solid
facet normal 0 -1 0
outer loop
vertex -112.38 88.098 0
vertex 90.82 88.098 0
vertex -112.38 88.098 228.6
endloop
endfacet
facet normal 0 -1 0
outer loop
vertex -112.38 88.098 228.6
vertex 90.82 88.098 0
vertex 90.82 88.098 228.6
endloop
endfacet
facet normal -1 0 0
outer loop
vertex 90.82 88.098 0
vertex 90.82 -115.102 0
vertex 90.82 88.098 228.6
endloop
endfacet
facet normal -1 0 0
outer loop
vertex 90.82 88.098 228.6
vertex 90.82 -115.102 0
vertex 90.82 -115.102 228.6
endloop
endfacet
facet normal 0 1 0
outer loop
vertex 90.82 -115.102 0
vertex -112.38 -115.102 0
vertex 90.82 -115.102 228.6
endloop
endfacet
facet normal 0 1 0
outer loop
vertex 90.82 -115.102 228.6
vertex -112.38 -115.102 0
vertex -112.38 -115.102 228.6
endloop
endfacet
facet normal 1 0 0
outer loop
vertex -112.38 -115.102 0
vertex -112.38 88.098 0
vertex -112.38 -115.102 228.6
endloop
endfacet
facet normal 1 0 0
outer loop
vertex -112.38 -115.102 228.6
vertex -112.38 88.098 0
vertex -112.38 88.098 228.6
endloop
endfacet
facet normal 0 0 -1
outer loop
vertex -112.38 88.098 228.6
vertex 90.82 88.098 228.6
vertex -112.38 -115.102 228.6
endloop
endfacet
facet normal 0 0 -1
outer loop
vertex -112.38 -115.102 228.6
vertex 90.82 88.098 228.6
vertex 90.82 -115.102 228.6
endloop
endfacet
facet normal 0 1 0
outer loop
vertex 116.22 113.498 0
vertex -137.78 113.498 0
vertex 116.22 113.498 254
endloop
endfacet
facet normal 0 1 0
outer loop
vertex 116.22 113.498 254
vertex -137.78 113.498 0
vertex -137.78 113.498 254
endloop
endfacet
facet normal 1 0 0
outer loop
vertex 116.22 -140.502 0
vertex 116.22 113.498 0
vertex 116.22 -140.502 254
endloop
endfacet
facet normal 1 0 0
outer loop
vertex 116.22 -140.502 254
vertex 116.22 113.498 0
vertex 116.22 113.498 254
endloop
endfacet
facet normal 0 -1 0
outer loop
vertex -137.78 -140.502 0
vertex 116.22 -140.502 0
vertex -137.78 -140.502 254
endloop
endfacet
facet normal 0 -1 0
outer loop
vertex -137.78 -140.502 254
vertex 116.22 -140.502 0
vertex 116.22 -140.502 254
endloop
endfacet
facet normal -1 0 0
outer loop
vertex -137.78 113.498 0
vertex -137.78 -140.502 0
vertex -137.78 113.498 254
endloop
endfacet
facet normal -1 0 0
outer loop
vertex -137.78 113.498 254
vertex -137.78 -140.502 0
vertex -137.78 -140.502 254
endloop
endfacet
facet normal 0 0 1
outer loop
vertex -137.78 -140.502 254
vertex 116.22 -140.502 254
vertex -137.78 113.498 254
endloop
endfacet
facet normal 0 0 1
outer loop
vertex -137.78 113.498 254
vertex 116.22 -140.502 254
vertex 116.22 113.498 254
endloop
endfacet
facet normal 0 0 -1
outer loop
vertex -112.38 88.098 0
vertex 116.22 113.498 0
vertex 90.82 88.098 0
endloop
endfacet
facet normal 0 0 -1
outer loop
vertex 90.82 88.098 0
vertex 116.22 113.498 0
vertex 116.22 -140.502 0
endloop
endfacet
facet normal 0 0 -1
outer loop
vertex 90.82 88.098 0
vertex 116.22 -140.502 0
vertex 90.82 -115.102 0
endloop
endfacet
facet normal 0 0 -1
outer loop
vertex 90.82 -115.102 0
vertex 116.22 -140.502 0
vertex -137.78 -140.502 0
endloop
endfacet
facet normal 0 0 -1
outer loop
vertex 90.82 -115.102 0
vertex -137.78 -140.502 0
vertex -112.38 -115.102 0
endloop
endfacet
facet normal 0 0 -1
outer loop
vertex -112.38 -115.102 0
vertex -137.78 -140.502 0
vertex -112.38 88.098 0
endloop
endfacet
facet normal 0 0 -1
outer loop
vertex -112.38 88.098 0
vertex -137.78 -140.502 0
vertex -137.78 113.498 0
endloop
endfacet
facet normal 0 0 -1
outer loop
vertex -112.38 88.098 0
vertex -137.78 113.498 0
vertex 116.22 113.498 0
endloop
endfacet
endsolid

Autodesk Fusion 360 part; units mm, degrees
sketch "Sketch9" plane through (0, 0, 0) normal (0, 0, 1) x (1, 0, 0)
  line L0 (-137.7795, 113.4984) -> (116.2205, 113.4984)
  line L1 (-137.7795, 113.4984) -> (-137.7795, -140.5016)
  line L2 (-137.7795, -140.5016) -> (116.2205, -140.5016)
  line L3 (116.2205, 113.4984) -> (116.2205, -140.5016)
extrude "Extrude2" add sketch "Sketch9" along normal blind 254
shell "Shell2" thickness 25.4 removed faces 1 at (-53.1129, -55.835, 0)
